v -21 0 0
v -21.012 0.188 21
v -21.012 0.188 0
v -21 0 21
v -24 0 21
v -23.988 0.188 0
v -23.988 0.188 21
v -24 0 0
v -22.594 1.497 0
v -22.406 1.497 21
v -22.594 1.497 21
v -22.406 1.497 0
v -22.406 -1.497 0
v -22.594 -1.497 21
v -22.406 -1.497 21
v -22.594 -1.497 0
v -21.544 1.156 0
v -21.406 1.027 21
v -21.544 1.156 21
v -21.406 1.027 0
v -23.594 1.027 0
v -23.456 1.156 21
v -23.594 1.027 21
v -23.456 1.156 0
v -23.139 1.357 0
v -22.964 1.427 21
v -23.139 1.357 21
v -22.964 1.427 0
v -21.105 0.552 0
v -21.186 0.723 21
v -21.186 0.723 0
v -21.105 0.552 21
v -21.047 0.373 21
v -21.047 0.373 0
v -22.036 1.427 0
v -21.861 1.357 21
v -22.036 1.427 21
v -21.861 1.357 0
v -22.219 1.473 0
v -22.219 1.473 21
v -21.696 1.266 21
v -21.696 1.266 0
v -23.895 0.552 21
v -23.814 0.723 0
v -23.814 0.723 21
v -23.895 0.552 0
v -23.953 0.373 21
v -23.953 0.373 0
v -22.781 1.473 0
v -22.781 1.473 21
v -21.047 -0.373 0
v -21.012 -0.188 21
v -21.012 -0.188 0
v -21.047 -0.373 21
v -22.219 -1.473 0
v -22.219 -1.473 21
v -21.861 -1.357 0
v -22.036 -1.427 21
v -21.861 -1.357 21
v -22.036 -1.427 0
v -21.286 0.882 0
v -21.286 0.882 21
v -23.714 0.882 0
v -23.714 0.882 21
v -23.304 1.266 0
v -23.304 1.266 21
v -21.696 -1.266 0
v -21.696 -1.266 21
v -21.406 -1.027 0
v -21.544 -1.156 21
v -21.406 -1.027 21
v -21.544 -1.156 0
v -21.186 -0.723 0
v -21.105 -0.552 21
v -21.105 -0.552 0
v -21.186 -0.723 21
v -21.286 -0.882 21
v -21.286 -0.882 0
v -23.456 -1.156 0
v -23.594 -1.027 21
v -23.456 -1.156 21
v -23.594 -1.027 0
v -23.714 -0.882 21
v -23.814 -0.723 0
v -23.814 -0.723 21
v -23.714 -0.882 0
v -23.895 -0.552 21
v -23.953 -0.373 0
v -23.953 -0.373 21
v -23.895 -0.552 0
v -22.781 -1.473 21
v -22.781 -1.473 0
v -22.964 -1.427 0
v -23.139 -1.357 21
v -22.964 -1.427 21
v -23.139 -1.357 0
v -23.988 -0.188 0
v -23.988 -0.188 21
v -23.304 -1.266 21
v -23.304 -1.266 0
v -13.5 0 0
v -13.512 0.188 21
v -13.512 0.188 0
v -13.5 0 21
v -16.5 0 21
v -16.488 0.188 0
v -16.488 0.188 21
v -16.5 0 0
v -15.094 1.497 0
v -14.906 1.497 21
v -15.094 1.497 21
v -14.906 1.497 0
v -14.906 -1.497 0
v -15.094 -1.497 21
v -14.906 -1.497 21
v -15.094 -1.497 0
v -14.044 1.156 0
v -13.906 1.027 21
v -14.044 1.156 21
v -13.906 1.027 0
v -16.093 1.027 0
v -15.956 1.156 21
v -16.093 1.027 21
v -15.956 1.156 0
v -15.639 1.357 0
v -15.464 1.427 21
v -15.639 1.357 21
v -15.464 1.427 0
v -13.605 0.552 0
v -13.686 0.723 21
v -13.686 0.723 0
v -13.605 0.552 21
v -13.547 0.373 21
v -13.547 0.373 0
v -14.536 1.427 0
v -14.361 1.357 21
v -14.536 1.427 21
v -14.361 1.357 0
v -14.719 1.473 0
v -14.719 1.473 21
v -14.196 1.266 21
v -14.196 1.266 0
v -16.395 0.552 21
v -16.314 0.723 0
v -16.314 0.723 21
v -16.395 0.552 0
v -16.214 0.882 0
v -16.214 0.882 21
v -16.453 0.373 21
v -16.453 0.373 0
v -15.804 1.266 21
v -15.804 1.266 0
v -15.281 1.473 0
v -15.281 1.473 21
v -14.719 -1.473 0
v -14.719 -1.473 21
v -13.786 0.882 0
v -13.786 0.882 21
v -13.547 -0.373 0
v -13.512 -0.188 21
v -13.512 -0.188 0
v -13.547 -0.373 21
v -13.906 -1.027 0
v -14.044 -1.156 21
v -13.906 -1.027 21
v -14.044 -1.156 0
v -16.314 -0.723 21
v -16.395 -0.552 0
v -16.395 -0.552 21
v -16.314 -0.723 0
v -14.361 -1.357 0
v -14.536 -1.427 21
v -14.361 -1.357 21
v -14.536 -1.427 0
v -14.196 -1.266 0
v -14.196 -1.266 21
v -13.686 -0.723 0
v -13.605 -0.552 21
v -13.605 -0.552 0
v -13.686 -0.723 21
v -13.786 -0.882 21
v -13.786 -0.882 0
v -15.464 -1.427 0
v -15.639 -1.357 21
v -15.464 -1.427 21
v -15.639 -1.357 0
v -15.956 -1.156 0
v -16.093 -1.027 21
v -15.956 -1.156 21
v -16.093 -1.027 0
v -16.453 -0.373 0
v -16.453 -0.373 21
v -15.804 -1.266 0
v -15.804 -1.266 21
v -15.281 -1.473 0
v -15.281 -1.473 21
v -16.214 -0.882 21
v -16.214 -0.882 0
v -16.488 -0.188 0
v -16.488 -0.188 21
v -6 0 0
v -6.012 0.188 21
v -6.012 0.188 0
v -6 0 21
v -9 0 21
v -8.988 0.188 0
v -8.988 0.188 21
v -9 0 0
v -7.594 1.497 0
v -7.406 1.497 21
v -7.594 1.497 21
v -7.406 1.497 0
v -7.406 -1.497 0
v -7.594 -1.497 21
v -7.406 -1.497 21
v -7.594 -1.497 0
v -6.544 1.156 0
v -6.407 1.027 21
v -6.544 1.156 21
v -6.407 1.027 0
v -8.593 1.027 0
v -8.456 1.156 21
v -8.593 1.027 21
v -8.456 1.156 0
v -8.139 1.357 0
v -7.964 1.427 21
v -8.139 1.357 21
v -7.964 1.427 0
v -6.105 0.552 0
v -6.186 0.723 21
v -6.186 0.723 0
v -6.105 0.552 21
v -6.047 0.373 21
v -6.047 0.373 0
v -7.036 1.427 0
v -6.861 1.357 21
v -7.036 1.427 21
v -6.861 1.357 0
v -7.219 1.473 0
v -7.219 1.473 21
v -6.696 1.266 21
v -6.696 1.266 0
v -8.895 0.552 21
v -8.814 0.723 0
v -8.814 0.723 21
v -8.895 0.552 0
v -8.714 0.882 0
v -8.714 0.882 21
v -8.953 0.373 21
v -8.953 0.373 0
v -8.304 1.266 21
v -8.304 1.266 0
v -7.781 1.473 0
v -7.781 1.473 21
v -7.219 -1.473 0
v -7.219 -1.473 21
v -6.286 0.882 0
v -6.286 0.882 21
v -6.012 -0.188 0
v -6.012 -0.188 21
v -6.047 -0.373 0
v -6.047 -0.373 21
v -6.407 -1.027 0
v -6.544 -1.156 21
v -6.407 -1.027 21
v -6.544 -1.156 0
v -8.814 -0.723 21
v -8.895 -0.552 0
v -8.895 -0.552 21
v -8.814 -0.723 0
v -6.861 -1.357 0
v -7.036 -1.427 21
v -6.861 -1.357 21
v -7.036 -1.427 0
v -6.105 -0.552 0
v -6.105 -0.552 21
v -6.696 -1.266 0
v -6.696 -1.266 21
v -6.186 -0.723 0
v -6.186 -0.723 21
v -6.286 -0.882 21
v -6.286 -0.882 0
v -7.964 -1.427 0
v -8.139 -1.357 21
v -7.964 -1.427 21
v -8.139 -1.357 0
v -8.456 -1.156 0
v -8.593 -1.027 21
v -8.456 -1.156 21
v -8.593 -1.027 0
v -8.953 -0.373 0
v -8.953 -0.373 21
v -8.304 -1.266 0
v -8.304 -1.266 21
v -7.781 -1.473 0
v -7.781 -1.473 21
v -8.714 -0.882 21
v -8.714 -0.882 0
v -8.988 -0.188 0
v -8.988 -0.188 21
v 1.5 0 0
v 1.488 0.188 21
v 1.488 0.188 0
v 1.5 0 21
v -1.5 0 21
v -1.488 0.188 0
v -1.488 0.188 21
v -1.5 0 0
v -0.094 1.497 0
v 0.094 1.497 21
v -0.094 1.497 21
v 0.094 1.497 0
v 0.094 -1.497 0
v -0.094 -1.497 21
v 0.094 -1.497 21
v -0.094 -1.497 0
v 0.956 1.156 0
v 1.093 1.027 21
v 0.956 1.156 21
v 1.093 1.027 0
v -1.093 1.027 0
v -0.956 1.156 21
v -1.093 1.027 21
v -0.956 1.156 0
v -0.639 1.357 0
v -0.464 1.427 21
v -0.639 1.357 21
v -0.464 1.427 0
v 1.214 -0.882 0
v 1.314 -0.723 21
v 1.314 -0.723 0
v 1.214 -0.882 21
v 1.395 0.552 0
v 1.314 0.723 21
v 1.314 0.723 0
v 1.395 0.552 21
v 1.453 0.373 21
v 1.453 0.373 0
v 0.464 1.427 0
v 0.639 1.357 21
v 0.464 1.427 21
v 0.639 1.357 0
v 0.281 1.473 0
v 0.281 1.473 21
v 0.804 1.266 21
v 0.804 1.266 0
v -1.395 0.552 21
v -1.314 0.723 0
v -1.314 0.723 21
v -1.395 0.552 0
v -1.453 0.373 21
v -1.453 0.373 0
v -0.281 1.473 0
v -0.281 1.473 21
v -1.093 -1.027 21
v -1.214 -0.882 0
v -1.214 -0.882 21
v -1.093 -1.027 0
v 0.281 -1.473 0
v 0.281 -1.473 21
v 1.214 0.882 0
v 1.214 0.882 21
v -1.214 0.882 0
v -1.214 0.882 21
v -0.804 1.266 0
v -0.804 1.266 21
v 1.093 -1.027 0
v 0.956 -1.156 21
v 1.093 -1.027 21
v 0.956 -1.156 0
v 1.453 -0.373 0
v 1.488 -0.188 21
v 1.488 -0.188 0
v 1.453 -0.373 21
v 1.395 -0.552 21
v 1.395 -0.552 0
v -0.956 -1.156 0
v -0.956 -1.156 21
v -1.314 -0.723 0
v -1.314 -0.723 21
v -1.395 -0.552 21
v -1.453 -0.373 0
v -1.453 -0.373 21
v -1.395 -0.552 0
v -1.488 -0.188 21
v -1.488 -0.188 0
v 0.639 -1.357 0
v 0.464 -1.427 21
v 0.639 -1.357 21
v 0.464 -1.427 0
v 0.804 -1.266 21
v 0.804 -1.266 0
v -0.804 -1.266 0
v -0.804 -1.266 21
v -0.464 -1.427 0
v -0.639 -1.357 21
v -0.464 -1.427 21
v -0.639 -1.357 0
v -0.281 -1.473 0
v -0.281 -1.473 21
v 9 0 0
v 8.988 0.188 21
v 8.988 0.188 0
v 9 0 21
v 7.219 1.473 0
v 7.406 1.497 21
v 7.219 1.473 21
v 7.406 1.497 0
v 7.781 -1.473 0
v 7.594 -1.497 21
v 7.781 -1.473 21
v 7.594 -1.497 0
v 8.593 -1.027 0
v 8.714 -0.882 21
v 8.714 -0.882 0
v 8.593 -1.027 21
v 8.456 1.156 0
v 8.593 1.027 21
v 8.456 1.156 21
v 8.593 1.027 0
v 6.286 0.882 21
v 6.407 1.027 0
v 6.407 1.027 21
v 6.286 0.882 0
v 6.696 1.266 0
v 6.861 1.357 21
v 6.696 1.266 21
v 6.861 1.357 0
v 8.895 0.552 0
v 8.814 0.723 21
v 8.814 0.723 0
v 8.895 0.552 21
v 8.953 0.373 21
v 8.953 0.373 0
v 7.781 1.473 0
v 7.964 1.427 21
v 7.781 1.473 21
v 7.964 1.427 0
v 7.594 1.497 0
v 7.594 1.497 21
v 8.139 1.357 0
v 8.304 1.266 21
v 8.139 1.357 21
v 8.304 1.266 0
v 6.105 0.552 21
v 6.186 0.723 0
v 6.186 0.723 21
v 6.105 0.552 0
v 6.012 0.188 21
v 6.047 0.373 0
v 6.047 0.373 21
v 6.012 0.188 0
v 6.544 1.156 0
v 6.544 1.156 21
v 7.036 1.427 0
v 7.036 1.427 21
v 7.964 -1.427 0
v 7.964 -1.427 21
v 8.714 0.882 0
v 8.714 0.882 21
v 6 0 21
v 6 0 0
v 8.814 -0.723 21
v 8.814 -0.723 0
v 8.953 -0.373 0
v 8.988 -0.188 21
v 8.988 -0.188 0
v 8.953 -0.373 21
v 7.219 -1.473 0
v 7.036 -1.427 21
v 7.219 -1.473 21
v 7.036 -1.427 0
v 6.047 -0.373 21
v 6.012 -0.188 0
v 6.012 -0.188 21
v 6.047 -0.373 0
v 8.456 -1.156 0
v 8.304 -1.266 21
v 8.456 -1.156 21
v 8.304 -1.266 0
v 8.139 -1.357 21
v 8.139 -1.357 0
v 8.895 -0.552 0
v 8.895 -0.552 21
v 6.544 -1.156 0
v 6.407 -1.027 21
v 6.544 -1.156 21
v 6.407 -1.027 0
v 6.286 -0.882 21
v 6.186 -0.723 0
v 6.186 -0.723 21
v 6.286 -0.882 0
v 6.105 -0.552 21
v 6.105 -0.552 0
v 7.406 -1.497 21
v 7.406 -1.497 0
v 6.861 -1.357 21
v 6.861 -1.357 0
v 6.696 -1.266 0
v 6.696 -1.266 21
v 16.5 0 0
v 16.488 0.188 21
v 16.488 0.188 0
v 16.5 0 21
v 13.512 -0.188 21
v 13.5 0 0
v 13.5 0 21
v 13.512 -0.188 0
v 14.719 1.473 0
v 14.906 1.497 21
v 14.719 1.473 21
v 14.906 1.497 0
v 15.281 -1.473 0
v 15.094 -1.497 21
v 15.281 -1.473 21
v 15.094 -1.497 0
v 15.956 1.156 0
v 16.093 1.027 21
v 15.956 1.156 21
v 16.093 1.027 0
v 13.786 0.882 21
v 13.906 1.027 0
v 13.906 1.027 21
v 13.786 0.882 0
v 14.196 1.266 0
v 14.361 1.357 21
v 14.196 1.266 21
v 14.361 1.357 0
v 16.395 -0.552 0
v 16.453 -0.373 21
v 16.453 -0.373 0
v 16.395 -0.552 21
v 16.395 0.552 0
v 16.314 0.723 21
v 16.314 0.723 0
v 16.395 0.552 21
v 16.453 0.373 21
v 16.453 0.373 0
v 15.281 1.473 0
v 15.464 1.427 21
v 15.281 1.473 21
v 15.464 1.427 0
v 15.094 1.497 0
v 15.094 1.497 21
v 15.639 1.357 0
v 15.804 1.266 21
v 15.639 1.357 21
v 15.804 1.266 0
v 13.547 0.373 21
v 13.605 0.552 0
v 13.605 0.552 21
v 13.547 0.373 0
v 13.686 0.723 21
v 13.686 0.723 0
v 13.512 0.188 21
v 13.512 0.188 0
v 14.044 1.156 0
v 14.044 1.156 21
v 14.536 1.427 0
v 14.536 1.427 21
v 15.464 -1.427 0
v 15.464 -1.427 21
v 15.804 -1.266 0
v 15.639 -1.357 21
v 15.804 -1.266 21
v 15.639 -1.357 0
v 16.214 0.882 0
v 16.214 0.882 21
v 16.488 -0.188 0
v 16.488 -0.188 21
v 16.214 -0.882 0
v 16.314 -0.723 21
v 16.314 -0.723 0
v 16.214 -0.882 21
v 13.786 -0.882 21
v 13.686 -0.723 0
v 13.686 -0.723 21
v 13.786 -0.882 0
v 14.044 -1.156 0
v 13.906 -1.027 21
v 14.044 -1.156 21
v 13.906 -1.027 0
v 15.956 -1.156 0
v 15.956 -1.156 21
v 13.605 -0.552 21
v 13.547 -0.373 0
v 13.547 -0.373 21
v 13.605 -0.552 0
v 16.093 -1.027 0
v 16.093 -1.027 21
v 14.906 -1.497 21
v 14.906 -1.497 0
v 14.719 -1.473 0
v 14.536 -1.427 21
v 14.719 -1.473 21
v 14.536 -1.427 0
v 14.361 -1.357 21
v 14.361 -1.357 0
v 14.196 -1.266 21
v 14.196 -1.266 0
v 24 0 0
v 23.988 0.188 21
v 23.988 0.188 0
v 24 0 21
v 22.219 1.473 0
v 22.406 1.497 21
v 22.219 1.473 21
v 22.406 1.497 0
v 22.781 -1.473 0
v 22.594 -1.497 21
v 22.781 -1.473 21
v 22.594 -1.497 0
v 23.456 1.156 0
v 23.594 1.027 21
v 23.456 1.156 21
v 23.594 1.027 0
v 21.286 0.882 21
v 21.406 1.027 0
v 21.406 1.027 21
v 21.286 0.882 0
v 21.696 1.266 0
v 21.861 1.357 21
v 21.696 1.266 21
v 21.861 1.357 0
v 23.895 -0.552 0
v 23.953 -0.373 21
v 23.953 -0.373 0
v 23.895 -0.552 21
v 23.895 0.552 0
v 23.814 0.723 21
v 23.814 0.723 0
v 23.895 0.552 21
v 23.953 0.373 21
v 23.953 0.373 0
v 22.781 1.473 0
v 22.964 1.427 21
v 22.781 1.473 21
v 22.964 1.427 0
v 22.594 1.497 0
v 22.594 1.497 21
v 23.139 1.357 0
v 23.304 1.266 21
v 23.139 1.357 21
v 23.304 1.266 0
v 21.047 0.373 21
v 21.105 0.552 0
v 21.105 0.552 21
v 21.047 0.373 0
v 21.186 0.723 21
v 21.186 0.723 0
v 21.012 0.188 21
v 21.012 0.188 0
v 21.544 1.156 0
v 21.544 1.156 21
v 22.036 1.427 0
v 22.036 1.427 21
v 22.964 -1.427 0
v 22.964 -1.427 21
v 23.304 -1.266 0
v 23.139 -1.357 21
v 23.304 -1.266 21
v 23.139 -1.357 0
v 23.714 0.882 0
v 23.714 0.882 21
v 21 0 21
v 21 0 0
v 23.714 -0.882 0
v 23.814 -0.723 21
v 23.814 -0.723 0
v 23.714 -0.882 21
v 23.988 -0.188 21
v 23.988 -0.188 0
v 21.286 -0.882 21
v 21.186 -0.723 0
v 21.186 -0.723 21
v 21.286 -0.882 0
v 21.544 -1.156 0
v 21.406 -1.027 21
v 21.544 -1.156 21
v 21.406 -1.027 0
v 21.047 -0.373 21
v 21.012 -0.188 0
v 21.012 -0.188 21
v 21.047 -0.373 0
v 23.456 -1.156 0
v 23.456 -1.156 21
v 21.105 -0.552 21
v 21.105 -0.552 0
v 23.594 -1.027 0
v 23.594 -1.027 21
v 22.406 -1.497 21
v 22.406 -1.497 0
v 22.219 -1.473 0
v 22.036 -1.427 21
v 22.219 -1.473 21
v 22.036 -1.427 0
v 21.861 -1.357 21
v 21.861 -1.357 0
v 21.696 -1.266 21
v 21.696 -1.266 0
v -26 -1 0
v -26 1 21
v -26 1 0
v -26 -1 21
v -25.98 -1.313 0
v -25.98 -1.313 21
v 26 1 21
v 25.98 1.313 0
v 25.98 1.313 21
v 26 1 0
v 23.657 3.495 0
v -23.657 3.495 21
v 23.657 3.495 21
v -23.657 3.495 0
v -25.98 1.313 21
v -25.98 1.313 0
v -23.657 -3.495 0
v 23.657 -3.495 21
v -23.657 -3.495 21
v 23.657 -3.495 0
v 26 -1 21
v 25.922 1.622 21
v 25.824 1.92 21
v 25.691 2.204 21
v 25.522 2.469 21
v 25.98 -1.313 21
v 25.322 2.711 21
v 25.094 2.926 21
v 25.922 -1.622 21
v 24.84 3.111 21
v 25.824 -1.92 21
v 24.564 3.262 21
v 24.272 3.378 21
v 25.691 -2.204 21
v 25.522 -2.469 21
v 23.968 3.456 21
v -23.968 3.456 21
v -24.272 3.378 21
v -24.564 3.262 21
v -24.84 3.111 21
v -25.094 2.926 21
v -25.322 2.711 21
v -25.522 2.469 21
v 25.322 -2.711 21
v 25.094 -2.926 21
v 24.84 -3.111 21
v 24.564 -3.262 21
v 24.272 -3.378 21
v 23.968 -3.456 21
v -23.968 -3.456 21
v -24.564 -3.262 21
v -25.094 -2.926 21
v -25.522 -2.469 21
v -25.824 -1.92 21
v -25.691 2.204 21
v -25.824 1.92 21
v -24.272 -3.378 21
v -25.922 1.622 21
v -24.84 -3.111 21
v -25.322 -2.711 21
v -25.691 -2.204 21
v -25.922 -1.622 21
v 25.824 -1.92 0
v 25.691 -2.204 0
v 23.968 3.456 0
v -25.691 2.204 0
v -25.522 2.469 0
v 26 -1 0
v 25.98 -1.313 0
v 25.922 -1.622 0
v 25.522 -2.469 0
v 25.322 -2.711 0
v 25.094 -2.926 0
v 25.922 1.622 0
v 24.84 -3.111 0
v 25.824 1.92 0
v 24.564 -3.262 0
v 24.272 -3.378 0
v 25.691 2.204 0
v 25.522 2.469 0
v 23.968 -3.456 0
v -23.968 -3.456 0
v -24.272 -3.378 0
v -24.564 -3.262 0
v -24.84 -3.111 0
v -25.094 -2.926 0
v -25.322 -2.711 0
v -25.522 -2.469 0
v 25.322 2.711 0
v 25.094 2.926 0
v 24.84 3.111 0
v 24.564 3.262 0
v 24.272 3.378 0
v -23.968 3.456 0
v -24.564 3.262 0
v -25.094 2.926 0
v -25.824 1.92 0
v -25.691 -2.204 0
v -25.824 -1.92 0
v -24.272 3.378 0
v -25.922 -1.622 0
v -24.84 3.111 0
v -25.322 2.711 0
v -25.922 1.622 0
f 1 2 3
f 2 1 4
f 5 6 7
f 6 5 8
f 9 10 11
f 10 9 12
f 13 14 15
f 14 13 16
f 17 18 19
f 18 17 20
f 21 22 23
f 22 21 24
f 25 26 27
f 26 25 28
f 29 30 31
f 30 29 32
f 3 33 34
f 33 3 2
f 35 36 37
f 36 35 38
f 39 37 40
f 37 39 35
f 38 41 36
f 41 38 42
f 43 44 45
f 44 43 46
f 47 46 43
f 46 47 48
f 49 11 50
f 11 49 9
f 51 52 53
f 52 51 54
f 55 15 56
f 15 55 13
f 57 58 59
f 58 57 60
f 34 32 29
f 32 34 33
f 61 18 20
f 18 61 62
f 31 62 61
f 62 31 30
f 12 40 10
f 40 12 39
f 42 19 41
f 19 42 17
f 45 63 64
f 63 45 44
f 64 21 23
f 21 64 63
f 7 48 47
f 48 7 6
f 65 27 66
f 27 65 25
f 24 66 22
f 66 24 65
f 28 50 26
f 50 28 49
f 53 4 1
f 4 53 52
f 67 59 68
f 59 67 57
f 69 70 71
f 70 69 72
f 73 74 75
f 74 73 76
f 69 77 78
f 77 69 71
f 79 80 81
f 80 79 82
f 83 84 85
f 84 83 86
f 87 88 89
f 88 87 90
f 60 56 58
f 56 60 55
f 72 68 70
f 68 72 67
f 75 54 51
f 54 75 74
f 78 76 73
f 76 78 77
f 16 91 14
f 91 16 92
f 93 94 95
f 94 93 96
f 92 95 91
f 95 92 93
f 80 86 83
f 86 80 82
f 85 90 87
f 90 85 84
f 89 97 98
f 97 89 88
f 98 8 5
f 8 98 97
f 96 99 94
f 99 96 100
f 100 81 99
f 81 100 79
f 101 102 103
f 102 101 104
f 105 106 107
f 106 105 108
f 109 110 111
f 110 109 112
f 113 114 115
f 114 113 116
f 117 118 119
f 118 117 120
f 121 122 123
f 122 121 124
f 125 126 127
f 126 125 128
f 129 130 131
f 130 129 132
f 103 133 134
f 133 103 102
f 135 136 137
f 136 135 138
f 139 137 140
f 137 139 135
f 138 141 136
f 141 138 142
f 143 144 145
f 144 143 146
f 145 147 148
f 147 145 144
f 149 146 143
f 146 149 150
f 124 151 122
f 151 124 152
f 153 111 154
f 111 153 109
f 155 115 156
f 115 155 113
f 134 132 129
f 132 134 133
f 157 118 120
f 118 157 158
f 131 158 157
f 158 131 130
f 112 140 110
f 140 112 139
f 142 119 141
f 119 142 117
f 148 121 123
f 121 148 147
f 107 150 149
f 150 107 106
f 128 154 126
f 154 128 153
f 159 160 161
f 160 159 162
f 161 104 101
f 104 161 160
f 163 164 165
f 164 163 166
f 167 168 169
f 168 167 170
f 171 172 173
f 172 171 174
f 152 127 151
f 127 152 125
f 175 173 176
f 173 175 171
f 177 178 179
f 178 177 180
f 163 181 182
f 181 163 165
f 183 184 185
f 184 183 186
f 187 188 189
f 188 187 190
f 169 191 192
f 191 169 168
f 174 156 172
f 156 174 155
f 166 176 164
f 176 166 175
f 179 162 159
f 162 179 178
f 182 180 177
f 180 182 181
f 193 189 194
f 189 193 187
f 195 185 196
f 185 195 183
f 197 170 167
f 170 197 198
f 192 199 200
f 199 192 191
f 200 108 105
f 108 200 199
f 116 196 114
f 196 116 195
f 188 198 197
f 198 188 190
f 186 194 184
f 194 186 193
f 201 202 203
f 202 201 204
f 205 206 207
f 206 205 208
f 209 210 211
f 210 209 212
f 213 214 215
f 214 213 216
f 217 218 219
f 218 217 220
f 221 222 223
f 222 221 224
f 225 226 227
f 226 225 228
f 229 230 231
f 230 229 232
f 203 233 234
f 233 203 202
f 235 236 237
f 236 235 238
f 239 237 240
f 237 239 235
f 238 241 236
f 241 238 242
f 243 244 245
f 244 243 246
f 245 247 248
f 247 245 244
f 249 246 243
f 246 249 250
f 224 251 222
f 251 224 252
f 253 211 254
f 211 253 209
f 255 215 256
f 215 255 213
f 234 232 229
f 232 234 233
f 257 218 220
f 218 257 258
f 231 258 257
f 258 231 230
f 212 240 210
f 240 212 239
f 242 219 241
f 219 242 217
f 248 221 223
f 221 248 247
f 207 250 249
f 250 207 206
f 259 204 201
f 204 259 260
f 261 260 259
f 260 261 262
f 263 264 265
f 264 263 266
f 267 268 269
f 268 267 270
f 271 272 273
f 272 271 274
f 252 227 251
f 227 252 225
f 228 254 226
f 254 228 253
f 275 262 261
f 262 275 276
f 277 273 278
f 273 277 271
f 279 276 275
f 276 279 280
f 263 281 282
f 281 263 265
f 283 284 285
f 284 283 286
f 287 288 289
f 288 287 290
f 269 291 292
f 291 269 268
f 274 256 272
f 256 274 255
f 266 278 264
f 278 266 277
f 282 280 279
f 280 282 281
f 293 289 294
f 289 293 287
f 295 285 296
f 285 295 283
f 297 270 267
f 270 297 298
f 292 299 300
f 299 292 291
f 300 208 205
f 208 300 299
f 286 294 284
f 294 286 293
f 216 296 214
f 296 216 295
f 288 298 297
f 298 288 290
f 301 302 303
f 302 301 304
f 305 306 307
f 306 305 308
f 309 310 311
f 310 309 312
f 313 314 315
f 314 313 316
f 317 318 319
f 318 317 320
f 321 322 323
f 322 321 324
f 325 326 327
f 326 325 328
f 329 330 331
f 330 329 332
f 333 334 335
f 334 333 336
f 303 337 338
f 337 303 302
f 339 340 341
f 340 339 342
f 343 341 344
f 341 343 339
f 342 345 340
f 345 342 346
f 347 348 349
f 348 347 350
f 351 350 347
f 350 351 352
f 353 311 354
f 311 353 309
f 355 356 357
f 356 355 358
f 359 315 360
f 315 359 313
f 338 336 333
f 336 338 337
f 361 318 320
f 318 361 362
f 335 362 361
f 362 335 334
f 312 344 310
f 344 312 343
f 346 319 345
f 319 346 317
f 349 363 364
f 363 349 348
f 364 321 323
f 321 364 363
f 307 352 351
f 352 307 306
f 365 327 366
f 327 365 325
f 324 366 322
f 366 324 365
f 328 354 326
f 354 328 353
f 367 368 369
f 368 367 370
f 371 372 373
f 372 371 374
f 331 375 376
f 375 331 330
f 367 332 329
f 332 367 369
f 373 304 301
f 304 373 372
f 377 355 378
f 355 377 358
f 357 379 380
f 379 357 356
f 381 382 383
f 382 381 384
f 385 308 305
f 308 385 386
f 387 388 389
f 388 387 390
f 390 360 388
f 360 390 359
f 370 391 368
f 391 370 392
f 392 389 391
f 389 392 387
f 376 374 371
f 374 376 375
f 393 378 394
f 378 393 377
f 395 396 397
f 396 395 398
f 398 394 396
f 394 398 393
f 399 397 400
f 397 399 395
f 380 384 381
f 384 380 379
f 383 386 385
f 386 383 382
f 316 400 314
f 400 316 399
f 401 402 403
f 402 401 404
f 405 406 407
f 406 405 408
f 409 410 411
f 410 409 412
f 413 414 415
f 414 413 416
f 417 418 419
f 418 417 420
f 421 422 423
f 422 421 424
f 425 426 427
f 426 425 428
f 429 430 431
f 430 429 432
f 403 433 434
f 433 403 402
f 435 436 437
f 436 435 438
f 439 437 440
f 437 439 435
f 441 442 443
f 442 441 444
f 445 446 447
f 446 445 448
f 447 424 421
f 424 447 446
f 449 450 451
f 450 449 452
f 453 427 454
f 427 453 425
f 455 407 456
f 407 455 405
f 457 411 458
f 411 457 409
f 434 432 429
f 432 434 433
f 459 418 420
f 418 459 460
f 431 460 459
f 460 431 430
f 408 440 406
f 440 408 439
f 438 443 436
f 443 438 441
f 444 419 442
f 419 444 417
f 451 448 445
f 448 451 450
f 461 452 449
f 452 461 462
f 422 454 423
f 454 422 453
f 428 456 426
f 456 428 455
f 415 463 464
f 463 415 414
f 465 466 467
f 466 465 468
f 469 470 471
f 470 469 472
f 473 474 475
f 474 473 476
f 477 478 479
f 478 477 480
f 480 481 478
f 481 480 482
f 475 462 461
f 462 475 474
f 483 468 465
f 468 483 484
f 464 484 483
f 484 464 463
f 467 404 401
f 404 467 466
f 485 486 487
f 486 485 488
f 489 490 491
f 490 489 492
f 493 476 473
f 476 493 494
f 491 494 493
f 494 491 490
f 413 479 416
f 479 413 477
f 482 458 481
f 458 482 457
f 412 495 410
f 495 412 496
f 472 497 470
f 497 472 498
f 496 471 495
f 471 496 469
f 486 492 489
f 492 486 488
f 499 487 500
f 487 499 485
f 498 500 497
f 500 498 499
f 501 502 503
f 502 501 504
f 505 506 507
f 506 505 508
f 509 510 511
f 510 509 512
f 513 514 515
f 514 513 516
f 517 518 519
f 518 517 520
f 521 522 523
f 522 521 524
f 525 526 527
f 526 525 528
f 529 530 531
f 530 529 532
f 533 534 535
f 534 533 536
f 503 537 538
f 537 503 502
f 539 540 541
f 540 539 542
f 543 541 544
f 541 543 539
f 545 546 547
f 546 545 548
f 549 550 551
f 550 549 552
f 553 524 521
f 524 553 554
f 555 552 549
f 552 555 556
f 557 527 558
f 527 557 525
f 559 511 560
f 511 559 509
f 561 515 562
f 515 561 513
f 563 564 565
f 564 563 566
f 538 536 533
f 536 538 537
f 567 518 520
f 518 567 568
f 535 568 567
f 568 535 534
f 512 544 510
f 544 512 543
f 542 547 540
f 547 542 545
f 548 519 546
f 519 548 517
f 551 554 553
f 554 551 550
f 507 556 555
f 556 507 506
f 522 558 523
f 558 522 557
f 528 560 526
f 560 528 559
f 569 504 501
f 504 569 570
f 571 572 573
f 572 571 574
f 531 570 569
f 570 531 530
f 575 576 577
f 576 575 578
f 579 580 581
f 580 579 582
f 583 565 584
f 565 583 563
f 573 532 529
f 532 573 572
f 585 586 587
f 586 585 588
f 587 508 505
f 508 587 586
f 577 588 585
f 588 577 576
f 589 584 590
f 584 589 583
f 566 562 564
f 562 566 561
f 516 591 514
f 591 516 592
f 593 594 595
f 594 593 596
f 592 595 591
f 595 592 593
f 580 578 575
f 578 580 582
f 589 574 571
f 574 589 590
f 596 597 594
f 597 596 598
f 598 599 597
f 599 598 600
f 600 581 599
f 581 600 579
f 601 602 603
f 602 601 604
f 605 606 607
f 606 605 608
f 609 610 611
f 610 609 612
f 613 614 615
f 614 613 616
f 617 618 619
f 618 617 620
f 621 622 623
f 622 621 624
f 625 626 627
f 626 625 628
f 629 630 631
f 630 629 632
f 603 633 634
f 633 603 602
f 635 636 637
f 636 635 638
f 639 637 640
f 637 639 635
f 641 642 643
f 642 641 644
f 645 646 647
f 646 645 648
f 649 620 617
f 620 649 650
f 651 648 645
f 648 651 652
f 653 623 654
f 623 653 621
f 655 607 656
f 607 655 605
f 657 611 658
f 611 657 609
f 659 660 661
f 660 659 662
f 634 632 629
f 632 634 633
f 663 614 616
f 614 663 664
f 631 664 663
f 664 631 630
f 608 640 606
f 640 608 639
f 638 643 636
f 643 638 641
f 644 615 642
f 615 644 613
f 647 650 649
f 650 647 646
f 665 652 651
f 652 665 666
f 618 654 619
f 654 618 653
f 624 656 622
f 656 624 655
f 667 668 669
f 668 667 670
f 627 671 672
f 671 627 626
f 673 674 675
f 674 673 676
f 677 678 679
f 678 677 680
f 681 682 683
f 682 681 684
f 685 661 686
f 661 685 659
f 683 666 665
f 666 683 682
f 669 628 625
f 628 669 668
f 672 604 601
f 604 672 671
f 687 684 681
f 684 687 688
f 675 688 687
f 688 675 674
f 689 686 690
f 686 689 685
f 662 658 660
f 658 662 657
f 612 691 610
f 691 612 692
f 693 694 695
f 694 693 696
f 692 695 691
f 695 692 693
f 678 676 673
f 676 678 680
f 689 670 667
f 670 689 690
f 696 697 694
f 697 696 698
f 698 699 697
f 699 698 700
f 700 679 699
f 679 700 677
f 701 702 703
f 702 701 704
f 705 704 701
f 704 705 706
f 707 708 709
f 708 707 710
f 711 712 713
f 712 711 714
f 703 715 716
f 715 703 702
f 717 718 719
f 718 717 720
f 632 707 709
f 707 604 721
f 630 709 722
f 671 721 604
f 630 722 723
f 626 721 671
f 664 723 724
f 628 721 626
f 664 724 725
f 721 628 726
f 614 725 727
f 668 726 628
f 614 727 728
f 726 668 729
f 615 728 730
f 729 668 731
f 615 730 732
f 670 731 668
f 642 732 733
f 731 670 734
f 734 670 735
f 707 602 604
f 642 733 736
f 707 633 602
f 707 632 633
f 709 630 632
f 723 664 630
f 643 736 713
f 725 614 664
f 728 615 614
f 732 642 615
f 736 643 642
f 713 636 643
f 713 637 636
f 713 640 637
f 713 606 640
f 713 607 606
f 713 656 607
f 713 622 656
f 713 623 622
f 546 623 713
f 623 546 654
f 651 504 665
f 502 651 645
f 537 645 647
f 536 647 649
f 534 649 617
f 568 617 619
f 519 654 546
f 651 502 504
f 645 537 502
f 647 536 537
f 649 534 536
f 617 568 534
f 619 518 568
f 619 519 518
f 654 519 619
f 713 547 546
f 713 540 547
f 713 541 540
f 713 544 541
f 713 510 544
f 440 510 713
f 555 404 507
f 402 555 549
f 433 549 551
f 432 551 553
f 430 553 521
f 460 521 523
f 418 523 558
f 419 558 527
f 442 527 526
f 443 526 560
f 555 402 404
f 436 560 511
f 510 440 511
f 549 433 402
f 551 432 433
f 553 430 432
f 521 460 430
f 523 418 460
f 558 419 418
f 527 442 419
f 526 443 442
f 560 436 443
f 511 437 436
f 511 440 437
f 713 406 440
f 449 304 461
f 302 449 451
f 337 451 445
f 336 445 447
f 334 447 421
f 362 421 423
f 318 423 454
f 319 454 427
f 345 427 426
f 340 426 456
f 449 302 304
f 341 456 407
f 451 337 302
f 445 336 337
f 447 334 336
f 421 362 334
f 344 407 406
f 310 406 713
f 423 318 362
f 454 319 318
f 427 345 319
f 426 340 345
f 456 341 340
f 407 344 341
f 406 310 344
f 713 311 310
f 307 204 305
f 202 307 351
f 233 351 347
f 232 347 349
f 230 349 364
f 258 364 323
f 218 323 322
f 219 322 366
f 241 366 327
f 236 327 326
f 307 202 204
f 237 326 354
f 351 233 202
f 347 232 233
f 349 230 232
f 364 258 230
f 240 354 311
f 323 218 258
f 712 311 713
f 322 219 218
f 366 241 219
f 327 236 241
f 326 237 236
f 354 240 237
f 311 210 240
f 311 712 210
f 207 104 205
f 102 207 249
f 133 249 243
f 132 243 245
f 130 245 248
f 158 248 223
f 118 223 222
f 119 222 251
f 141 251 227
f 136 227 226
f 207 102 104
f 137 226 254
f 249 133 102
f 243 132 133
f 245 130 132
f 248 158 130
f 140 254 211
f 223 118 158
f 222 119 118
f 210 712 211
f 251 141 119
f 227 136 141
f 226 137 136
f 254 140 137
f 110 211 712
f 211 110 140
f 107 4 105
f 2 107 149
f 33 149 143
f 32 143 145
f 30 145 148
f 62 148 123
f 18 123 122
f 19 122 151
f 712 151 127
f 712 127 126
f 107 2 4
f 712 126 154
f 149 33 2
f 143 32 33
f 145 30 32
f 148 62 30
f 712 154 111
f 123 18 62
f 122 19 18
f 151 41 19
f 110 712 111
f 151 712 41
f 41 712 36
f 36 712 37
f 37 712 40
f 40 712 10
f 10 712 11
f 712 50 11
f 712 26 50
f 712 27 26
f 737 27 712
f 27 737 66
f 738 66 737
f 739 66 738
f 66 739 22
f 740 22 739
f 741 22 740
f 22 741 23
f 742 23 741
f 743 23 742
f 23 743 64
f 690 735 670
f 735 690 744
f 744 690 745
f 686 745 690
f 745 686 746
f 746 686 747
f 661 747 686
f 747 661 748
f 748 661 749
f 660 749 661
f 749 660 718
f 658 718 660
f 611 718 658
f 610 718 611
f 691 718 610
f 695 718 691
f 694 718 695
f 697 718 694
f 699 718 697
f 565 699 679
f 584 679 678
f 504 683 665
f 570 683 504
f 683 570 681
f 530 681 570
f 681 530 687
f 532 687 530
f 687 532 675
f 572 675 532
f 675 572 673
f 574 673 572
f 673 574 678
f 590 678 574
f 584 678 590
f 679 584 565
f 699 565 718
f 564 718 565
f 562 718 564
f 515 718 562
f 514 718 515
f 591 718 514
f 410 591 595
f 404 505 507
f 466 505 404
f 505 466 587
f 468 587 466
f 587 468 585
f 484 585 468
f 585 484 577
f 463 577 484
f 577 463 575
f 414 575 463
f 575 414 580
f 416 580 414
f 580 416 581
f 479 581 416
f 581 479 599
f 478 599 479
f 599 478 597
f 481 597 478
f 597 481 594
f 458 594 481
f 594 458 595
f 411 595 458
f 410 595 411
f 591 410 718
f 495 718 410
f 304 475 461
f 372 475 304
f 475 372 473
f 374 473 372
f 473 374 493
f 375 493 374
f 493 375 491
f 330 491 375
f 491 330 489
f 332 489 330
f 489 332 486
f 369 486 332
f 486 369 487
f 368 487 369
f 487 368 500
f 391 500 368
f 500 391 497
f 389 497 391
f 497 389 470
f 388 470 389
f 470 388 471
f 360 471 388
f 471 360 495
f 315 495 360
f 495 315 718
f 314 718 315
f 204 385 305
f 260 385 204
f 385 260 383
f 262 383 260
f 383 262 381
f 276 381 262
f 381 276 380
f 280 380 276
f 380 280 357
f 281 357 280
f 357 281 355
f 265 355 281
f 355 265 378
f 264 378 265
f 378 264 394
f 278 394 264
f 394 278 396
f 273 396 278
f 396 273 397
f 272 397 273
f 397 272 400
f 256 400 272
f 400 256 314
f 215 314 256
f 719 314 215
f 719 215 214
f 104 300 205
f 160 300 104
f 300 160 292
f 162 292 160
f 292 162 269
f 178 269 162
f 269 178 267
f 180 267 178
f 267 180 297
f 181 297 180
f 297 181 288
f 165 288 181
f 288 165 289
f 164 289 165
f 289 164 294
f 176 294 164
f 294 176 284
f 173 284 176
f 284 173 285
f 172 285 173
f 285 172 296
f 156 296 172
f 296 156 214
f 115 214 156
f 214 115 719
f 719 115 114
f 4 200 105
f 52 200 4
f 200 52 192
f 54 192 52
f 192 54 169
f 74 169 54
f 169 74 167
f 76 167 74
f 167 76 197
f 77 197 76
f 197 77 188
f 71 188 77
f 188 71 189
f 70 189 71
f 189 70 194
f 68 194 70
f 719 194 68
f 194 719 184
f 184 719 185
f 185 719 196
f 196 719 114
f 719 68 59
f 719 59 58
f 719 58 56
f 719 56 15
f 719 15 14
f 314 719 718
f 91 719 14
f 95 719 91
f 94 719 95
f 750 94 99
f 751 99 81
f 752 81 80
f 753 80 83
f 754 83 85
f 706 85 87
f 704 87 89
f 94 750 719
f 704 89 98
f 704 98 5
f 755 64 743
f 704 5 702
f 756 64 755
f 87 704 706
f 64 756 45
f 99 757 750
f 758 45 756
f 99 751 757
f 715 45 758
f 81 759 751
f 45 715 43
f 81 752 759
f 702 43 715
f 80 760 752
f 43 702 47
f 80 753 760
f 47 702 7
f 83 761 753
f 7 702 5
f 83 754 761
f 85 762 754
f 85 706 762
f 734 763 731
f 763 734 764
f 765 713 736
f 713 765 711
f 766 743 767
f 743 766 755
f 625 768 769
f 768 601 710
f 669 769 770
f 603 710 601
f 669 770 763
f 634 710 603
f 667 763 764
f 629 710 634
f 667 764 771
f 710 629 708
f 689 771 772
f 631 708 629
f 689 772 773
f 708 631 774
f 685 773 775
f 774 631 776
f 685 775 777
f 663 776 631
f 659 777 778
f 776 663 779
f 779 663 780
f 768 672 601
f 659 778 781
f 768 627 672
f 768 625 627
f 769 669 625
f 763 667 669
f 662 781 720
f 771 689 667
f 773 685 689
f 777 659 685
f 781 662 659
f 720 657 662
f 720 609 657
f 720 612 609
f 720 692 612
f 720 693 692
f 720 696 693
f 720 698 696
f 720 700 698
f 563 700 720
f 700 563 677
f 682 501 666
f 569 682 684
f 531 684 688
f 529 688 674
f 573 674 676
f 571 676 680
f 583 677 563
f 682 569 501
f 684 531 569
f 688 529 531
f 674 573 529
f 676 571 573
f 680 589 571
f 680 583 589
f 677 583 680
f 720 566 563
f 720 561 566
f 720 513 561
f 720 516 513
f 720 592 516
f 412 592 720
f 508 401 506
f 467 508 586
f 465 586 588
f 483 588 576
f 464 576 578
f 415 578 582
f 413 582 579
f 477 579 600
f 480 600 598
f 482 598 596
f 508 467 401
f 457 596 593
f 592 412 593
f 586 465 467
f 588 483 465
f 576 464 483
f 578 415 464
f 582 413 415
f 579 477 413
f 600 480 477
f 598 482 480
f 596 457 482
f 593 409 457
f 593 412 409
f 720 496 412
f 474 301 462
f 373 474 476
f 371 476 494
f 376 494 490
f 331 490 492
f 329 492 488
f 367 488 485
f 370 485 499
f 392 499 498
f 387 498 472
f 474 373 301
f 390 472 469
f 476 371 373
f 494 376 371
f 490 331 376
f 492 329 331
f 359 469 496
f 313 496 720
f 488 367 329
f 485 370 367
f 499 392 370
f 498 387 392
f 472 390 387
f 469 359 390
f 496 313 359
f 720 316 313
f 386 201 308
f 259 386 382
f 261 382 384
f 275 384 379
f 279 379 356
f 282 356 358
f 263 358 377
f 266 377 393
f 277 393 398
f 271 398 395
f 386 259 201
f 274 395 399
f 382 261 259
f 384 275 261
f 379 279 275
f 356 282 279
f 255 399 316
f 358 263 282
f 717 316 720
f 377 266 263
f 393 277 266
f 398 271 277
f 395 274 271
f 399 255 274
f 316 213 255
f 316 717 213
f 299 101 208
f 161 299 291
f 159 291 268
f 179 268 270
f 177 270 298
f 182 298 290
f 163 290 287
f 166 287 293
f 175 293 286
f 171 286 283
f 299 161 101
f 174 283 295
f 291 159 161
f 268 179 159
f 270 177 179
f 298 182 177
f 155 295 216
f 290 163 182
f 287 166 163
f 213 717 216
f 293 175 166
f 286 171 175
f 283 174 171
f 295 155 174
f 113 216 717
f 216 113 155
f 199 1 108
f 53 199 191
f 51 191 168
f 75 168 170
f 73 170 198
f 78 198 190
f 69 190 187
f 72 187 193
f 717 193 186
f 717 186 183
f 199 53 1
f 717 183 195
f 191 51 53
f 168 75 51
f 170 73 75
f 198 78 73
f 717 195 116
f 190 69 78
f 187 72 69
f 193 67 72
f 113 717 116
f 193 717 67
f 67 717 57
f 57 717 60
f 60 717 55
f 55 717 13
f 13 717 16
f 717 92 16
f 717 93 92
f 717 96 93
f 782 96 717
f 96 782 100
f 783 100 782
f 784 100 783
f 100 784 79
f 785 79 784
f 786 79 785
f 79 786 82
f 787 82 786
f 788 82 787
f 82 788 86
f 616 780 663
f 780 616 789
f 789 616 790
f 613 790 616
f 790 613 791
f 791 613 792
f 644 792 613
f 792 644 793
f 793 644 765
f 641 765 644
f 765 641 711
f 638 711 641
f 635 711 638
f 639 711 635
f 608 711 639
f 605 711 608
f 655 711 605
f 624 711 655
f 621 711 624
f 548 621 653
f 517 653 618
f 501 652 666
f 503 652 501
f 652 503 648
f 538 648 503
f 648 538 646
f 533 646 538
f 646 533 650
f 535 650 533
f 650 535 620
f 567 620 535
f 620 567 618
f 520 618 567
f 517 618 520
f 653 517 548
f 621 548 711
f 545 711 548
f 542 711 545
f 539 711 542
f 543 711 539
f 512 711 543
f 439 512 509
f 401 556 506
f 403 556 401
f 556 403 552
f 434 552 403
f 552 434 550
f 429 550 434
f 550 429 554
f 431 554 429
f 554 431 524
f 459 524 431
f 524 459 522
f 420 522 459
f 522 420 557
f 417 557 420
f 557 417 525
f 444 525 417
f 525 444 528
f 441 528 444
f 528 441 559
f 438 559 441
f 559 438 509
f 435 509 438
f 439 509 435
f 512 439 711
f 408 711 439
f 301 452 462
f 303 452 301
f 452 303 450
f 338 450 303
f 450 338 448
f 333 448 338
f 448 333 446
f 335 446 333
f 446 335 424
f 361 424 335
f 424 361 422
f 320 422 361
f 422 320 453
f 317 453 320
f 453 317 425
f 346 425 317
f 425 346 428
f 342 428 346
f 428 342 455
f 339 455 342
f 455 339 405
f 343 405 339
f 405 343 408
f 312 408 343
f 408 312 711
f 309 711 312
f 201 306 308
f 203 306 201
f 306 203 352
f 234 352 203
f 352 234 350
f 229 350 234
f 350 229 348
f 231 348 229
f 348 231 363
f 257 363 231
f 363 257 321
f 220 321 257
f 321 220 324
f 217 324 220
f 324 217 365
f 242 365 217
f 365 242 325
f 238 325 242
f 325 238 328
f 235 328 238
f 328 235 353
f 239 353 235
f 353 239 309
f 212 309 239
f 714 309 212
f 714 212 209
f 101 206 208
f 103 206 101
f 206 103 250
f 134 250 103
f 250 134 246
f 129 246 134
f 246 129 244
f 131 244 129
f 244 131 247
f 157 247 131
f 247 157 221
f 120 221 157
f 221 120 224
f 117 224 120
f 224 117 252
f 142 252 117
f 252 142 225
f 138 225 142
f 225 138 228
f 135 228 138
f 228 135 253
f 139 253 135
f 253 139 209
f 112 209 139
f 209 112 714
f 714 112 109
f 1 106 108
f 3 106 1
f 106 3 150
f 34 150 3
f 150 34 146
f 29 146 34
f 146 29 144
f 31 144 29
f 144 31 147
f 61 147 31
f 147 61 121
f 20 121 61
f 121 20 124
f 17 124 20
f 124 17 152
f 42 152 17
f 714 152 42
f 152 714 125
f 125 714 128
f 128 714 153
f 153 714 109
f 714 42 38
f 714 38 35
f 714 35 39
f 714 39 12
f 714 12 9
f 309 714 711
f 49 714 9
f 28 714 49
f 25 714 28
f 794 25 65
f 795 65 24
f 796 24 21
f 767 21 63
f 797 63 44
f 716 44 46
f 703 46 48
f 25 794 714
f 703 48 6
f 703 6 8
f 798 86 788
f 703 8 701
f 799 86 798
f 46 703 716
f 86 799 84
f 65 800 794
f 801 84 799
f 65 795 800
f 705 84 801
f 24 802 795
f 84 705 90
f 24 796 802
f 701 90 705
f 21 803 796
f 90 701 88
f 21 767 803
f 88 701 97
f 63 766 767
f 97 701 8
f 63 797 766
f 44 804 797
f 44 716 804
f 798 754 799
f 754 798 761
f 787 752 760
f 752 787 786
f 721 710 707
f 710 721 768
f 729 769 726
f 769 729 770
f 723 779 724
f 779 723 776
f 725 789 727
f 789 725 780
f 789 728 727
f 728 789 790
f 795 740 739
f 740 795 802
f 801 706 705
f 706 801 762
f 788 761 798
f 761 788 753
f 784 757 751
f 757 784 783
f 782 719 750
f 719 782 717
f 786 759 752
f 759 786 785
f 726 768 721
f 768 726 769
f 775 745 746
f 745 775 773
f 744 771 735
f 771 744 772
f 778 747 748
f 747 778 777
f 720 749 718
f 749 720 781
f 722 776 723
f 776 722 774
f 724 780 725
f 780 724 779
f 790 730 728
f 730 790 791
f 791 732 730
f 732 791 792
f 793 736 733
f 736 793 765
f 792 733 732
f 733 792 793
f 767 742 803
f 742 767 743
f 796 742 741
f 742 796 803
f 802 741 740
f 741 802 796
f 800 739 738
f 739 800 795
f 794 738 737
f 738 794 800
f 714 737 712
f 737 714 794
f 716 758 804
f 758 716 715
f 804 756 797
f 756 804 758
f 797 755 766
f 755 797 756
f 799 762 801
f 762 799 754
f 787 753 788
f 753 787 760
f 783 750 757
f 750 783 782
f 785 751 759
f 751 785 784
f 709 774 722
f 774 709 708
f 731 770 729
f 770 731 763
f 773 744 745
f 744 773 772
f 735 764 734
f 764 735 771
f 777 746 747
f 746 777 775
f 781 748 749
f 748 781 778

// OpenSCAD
$fn = 50;


difference() {
	union() {
		translate(v = [0, 0, 0]) {
			rotate(a = [0, 0, 0]) {
				hull() {
					translate(v = [-23.5000000000, 1.0000000000, 0]) {
						rotate(a = [0, 0, 0]) {
							translate(v = [0, 0, 0]) {
								rotate(a = [0, 0, 0]) {
									cylinder(h = 21, r = 2.5000000000);
								}
							}
						}
					}
					translate(v = [23.5000000000, 1.0000000000, 0]) {
						rotate(a = [0, 0, 0]) {
							translate(v = [0, 0, 0]) {
								rotate(a = [0, 0, 0]) {
									cylinder(h = 21, r = 2.5000000000);
								}
							}
						}
					}
					translate(v = [-23.5000000000, -1.0000000000, 0]) {
						rotate(a = [0, 0, 0]) {
							translate(v = [0, 0, 0]) {
								rotate(a = [0, 0, 0]) {
									cylinder(h = 21, r = 2.5000000000);
								}
							}
						}
					}
					translate(v = [23.5000000000, -1.0000000000, 0]) {
						rotate(a = [0, 0, 0]) {
							translate(v = [0, 0, 0]) {
								rotate(a = [0, 0, 0]) {
									cylinder(h = 21, r = 2.5000000000);
								}
							}
						}
					}
				}
			}
		}
	}
	union() {
		translate(v = [-22.5000000000, 0.0000000000, 0]) {
			rotate(a = [0, 0, 0]) {
				translate(v = [0, 0, -50]) {
					rotate(a = [0, 0, 0]) {
						cylinder(h = 100, r = 1.5000000000);
					}
				}
			}
		}
		translate(v = [-15.0000000000, 0.0000000000, 0]) {
			rotate(a = [0, 0, 0]) {
				translate(v = [0, 0, -50]) {
					rotate(a = [0, 0, 0]) {
						cylinder(h = 100, r = 1.5000000000);
					}
				}
			}
		}
		translate(v = [-7.5000000000, 0.0000000000, 0]) {
			rotate(a = [0, 0, 0]) {
				translate(v = [0, 0, -50]) {
					rotate(a = [0, 0, 0]) {
						cylinder(h = 100, r = 1.5000000000);
					}
				}
			}
		}
		translate(v = [0.0000000000, 0.0000000000, 0]) {
			rotate(a = [0, 0, 0]) {
				translate(v = [0, 0, -50]) {
					rotate(a = [0, 0, 0]) {
						cylinder(h = 100, r = 1.5000000000);
					}
				}
			}
		}
		translate(v = [7.5000000000, 0.0000000000, 0]) {
			rotate(a = [0, 0, 0]) {
				translate(v = [0, 0, -50]) {
					rotate(a = [0, 0, 0]) {
						cylinder(h = 100, r = 1.5000000000);
					}
				}
			}
		}
		translate(v = [15.0000000000, 0.0000000000, 0]) {
			rotate(a = [0, 0, 0]) {
				translate(v = [0, 0, -50]) {
					rotate(a = [0, 0, 0]) {
						cylinder(h = 100, r = 1.5000000000);
					}
				}
			}
		}
		translate(v = [22.5000000000, 0.0000000000, 0]) {
			rotate(a = [0, 0, 0]) {
				translate(v = [0, 0, -50]) {
					rotate(a = [0, 0, 0]) {
						cylinder(h = 100, r = 1.5000000000);
					}
				}
			}
		}
	}
}
